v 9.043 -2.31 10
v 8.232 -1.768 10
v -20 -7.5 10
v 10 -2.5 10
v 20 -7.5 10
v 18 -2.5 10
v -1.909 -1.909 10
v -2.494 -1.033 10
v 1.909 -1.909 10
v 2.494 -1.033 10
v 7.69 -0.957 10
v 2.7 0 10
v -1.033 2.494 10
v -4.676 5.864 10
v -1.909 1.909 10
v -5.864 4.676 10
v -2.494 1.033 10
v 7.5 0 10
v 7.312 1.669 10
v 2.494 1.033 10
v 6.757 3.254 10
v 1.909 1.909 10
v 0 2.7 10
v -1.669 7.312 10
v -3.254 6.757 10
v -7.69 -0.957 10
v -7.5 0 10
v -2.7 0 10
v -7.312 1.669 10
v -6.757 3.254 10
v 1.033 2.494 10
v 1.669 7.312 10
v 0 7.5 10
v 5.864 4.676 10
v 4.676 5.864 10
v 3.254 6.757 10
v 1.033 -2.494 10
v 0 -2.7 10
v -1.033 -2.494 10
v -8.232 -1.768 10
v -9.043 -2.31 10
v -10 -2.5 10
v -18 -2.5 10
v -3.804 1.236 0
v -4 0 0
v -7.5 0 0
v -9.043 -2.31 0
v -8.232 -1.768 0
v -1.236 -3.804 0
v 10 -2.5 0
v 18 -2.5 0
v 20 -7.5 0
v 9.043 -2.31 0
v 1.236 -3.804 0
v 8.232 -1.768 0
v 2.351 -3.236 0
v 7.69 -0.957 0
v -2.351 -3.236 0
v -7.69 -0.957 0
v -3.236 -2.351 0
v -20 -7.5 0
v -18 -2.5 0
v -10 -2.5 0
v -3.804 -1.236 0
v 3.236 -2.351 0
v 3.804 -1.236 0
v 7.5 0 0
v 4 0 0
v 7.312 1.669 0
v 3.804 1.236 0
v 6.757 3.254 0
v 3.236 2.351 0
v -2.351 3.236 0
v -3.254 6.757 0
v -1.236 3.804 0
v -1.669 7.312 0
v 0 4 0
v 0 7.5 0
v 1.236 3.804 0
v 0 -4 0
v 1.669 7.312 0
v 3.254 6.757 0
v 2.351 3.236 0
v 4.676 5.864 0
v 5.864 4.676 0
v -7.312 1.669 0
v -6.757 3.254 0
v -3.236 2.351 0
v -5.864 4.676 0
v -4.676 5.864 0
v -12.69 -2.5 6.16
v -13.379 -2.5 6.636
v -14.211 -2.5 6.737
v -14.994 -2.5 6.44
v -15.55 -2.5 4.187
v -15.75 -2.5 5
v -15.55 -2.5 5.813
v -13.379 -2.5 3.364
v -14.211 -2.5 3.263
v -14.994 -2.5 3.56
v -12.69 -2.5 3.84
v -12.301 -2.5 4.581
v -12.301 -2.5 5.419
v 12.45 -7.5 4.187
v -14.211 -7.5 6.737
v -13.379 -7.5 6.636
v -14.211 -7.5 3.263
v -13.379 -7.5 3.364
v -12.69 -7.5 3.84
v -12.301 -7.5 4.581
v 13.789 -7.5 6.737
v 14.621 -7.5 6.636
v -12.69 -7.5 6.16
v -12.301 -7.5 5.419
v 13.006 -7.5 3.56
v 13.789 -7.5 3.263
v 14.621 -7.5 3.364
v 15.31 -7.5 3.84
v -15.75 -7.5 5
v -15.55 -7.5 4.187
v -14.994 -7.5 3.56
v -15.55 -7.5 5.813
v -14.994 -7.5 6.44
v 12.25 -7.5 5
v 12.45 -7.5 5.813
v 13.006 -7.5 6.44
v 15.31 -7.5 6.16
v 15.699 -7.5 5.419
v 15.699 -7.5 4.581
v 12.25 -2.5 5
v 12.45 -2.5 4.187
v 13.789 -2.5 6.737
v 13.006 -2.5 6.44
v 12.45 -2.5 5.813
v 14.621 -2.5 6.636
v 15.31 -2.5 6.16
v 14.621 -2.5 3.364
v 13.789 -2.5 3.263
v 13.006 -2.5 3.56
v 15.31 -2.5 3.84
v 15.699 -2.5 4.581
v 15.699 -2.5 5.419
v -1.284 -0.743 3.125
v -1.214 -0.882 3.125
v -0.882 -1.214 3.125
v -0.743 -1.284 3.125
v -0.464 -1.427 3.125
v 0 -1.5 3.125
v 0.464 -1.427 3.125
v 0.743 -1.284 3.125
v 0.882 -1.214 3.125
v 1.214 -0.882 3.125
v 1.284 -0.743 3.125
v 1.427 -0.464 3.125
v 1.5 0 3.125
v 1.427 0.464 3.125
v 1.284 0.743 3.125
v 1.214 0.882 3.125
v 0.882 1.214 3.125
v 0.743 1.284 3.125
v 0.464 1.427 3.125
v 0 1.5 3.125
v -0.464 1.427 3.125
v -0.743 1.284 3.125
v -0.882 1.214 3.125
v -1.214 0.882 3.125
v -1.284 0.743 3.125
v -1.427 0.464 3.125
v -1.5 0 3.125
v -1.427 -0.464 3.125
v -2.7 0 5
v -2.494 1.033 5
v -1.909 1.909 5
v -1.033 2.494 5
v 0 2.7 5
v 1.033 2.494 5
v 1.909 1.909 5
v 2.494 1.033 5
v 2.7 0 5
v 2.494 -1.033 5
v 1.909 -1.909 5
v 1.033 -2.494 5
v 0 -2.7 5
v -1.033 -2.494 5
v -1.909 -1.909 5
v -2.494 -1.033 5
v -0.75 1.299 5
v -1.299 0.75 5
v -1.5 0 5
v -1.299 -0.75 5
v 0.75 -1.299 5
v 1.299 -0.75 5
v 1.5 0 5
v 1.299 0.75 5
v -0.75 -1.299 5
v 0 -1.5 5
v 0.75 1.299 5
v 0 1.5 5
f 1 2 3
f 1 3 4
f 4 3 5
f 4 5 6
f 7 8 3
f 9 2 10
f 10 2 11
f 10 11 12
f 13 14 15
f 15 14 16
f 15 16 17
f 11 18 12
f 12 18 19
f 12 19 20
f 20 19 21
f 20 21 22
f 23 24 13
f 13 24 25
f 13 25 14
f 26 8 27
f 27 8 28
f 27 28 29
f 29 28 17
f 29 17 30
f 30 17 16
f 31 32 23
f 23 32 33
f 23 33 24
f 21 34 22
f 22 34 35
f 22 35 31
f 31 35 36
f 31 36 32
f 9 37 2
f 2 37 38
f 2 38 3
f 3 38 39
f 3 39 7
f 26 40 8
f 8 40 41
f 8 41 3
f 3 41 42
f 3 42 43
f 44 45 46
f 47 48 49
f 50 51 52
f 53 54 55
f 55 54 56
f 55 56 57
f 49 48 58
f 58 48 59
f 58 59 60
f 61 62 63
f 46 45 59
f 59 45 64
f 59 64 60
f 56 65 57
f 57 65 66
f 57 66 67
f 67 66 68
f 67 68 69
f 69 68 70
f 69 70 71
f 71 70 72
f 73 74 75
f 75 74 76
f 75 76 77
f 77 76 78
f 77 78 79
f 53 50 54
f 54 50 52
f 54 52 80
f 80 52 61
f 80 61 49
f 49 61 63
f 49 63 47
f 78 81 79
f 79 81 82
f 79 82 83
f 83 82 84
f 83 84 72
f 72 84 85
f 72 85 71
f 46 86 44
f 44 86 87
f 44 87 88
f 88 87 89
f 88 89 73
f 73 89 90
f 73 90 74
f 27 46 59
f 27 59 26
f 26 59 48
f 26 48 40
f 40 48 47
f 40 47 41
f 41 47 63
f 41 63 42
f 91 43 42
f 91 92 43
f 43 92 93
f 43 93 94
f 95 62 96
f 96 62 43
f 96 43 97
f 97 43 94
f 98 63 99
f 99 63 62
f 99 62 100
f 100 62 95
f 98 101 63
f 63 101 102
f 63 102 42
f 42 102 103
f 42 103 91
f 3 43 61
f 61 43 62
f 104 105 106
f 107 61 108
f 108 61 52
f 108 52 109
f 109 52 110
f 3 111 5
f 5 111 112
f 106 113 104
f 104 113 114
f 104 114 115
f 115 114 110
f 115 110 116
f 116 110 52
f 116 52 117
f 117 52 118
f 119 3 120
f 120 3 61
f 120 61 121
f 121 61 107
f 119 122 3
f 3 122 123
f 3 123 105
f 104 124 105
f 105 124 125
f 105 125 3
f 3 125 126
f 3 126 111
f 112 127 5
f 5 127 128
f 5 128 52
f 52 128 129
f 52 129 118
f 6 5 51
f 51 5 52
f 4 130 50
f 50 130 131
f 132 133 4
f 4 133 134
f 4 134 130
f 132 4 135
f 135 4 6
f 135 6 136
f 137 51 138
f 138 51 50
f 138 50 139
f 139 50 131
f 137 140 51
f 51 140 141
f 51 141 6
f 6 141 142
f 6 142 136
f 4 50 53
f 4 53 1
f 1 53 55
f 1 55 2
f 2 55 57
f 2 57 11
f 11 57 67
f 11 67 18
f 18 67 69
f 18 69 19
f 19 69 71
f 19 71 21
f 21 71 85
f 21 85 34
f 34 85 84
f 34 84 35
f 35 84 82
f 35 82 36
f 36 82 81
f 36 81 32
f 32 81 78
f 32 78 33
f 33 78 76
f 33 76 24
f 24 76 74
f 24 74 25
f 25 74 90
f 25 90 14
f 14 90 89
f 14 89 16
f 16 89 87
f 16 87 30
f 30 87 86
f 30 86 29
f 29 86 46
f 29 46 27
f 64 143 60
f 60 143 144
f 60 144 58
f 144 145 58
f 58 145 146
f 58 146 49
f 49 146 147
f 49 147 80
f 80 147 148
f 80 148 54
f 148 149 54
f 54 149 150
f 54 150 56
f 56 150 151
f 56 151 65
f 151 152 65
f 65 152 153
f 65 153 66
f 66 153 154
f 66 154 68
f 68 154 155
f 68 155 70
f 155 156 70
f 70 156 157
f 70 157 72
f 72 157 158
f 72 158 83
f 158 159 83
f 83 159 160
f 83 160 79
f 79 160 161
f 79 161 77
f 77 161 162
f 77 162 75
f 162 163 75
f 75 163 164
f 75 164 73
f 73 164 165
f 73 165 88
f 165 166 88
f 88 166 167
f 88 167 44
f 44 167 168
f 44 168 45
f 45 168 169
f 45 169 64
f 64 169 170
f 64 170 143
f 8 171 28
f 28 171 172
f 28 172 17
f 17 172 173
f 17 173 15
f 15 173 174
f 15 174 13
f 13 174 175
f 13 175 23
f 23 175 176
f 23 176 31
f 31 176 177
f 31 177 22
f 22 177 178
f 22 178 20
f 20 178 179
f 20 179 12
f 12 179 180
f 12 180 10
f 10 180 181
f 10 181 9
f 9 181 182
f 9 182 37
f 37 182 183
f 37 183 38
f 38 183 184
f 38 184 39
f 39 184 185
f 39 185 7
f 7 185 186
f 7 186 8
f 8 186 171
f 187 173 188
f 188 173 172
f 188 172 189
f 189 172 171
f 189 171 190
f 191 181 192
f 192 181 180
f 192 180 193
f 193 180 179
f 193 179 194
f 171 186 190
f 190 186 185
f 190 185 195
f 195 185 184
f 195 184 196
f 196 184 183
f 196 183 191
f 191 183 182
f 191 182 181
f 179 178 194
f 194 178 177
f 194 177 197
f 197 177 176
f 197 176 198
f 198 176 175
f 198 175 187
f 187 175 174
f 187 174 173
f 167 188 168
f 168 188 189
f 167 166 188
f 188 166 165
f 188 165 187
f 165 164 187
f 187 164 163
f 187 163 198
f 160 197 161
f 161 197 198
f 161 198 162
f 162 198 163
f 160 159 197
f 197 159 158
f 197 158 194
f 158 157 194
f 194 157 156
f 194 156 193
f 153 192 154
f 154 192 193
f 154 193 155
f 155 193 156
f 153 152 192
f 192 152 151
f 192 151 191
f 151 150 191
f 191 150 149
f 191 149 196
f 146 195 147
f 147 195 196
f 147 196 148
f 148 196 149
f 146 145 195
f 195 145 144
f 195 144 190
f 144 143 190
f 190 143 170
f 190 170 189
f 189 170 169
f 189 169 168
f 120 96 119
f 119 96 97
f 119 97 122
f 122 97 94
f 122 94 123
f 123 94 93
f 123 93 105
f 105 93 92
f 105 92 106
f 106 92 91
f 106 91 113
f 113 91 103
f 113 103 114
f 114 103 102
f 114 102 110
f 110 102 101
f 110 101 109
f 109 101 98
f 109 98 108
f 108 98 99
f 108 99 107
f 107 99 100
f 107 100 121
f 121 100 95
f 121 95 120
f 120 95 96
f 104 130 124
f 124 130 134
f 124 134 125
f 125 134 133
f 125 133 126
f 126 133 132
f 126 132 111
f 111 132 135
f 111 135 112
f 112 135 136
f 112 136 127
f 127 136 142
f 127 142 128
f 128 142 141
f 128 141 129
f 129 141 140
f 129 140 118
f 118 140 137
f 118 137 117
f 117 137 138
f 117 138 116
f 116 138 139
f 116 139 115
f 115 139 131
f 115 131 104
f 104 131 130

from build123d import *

# Parameters (mm, degrees)
SKETCH1_R           = 1.5
BOSS_EXTRUDE1_DEPTH = 10
SKETCH3_R           = 1.75
CUT_EXTRUDE1_DEPTH  = 6


with BuildPart() as part:
    # Sketch1 → Boss-Extrude1 (new body)
    with BuildSketch(Plane.XY):
        with BuildLine():
            Line((-10, -2.5), (-18, -2.5))
            Line((-18, -2.5), (-20, -7.5))
            Line((-20, -7.5), (20, -7.5))
            Line((20, -7.5), (18, -2.5))
            Line((18, -2.5), (10, -2.5))
            ThreePointArc((10, -2.5), (8.232233047, -1.767766953), (7.5, 0))
            ThreePointArc((7.5, 0), (0, 7.5), (-7.5, 0))
            ThreePointArc((-7.5, 0), (-8.232233047, -1.767766953), (-10, -2.5))
        make_face()
        Circle(SKETCH1_R, mode=Mode.SUBTRACT)
    extrude(amount=BOSS_EXTRUDE1_DEPTH)

    # Sketch2 → Cut-Revolve1 (revolve, cut)
    with BuildSketch(Plane(origin=(0, 0, 0), x_dir=(1, 0, 0), z_dir=(0, 1, 0))):
        Polygon((0, 0), (0, -5), (4, 0), align=None)
        Polygon((2.7, -5), (1.5, -5), (1.5, -3.125), (0, -5), (0, -10), (2.7, -10), align=None)
    revolve(axis=Axis((0, 0, 0), (0, 0, 1)), mode=Mode.SUBTRACT)

    # Sketch3 → Cut-Extrude1 (cut, through all)
    with BuildSketch(Plane(origin=(0, -2.5, 0), x_dir=(1, 0, 0), z_dir=(0, 1, 0))):
        with Locations((-14, -5)):
            Circle(SKETCH3_R)
        with Locations((14, -5)):
            Circle(SKETCH3_R)
    extrude(amount=-CUT_EXTRUDE1_DEPTH, mode=Mode.SUBTRACT)


solid = part.part
